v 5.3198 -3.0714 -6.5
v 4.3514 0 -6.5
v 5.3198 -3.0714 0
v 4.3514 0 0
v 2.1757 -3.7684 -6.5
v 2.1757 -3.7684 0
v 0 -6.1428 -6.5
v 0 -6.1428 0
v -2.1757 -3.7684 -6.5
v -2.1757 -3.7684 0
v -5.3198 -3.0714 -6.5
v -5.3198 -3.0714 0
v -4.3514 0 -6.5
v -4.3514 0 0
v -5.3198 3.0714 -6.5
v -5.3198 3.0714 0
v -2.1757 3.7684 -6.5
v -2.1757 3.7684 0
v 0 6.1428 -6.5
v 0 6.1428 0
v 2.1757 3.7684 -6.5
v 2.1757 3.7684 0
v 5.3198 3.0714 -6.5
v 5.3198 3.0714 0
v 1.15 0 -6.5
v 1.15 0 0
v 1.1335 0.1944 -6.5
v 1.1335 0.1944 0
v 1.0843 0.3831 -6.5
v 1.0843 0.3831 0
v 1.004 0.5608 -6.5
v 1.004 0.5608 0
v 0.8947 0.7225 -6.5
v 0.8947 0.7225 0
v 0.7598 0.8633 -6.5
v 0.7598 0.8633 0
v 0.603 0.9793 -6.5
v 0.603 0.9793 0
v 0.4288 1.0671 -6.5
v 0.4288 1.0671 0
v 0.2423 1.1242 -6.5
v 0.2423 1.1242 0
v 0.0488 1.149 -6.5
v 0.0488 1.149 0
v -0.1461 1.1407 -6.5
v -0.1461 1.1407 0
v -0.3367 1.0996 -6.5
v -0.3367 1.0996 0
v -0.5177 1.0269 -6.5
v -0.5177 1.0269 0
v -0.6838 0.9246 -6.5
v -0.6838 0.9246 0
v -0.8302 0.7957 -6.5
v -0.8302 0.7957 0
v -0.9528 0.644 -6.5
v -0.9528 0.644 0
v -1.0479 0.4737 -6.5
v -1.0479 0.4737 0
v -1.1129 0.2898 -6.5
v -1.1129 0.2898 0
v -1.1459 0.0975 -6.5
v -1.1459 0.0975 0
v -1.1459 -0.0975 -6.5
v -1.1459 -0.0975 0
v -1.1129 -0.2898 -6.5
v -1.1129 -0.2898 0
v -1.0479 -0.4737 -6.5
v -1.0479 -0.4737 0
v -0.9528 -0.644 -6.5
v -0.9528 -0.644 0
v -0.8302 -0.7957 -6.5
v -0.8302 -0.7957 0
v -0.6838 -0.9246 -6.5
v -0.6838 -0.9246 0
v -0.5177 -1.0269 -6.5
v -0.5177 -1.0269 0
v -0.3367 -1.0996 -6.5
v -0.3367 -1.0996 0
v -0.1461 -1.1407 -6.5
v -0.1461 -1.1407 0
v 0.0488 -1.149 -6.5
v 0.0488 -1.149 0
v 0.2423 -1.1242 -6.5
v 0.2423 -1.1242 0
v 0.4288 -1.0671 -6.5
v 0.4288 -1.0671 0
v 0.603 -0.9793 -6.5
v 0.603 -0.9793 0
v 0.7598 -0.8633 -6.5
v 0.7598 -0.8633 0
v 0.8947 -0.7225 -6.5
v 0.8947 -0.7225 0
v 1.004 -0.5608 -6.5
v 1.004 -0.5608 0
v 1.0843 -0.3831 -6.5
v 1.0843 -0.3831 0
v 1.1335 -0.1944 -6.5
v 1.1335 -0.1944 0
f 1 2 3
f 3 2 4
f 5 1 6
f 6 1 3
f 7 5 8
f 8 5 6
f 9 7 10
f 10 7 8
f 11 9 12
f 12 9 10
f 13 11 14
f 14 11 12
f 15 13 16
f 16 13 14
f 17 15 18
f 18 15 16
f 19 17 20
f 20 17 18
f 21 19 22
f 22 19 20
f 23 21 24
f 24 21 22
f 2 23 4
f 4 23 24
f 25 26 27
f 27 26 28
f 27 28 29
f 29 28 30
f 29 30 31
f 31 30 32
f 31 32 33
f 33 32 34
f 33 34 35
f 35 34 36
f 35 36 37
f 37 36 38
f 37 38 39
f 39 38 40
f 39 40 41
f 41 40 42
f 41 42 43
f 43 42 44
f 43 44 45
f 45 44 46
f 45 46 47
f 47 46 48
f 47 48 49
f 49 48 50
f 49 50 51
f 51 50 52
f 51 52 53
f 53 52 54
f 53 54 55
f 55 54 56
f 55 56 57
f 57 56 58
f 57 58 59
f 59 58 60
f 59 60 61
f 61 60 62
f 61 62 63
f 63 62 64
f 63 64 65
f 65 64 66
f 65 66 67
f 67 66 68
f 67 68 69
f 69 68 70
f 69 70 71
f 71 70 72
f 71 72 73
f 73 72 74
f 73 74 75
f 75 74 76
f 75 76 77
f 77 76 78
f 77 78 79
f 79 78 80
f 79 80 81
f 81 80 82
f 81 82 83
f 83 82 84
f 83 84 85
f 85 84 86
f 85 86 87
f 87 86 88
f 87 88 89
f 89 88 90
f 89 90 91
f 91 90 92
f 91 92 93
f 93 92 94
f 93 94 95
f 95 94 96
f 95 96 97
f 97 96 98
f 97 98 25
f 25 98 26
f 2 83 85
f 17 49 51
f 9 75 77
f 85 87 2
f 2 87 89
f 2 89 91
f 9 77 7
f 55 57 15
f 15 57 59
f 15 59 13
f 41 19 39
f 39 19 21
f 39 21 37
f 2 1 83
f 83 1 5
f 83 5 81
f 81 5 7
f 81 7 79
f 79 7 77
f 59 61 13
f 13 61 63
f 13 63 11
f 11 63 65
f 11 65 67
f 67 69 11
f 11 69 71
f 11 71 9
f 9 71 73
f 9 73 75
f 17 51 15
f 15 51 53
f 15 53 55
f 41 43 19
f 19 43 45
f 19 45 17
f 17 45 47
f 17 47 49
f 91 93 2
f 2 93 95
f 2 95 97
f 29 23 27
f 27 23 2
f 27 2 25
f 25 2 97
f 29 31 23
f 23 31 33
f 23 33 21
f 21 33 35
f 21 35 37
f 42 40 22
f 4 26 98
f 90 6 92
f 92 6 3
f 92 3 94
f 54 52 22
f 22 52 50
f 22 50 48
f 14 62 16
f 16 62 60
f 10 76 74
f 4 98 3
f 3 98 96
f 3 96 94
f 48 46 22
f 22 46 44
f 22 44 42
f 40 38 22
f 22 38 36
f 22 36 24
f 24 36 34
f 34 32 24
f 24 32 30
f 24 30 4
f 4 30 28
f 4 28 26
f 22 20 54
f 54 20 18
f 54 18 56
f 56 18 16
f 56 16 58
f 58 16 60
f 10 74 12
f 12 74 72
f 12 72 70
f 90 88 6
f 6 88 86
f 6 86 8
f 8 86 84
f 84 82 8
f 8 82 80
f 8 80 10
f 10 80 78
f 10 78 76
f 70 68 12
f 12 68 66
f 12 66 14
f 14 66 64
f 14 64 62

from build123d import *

# Parameters (mm, degrees)
SKETCH1_R           = 1.15
BOSS_EXTRUDE1_DEPTH = 6.5


with BuildPart() as part:
    # Sketch1 → Boss-Extrude1 (new body)
    with BuildSketch(Plane.XY):
        Polygon((0, -6.142777017), (2.175697935, -3.768419365), (5.319800946, -3.071388508), (4.351395869, 0), (5.319800946, 3.071388508), (2.175697935, 3.768419365), (0, 6.142777017), (-2.175697935, 3.768419365), (-5.319800946, 3.071388508), (-4.351395869, 0), (-5.319800946, -3.071388508), (-2.175697935, -3.768419365), align=None)
        Circle(SKETCH1_R, mode=Mode.SUBTRACT)
    extrude(amount=-BOSS_EXTRUDE1_DEPTH)


solid = part.part
